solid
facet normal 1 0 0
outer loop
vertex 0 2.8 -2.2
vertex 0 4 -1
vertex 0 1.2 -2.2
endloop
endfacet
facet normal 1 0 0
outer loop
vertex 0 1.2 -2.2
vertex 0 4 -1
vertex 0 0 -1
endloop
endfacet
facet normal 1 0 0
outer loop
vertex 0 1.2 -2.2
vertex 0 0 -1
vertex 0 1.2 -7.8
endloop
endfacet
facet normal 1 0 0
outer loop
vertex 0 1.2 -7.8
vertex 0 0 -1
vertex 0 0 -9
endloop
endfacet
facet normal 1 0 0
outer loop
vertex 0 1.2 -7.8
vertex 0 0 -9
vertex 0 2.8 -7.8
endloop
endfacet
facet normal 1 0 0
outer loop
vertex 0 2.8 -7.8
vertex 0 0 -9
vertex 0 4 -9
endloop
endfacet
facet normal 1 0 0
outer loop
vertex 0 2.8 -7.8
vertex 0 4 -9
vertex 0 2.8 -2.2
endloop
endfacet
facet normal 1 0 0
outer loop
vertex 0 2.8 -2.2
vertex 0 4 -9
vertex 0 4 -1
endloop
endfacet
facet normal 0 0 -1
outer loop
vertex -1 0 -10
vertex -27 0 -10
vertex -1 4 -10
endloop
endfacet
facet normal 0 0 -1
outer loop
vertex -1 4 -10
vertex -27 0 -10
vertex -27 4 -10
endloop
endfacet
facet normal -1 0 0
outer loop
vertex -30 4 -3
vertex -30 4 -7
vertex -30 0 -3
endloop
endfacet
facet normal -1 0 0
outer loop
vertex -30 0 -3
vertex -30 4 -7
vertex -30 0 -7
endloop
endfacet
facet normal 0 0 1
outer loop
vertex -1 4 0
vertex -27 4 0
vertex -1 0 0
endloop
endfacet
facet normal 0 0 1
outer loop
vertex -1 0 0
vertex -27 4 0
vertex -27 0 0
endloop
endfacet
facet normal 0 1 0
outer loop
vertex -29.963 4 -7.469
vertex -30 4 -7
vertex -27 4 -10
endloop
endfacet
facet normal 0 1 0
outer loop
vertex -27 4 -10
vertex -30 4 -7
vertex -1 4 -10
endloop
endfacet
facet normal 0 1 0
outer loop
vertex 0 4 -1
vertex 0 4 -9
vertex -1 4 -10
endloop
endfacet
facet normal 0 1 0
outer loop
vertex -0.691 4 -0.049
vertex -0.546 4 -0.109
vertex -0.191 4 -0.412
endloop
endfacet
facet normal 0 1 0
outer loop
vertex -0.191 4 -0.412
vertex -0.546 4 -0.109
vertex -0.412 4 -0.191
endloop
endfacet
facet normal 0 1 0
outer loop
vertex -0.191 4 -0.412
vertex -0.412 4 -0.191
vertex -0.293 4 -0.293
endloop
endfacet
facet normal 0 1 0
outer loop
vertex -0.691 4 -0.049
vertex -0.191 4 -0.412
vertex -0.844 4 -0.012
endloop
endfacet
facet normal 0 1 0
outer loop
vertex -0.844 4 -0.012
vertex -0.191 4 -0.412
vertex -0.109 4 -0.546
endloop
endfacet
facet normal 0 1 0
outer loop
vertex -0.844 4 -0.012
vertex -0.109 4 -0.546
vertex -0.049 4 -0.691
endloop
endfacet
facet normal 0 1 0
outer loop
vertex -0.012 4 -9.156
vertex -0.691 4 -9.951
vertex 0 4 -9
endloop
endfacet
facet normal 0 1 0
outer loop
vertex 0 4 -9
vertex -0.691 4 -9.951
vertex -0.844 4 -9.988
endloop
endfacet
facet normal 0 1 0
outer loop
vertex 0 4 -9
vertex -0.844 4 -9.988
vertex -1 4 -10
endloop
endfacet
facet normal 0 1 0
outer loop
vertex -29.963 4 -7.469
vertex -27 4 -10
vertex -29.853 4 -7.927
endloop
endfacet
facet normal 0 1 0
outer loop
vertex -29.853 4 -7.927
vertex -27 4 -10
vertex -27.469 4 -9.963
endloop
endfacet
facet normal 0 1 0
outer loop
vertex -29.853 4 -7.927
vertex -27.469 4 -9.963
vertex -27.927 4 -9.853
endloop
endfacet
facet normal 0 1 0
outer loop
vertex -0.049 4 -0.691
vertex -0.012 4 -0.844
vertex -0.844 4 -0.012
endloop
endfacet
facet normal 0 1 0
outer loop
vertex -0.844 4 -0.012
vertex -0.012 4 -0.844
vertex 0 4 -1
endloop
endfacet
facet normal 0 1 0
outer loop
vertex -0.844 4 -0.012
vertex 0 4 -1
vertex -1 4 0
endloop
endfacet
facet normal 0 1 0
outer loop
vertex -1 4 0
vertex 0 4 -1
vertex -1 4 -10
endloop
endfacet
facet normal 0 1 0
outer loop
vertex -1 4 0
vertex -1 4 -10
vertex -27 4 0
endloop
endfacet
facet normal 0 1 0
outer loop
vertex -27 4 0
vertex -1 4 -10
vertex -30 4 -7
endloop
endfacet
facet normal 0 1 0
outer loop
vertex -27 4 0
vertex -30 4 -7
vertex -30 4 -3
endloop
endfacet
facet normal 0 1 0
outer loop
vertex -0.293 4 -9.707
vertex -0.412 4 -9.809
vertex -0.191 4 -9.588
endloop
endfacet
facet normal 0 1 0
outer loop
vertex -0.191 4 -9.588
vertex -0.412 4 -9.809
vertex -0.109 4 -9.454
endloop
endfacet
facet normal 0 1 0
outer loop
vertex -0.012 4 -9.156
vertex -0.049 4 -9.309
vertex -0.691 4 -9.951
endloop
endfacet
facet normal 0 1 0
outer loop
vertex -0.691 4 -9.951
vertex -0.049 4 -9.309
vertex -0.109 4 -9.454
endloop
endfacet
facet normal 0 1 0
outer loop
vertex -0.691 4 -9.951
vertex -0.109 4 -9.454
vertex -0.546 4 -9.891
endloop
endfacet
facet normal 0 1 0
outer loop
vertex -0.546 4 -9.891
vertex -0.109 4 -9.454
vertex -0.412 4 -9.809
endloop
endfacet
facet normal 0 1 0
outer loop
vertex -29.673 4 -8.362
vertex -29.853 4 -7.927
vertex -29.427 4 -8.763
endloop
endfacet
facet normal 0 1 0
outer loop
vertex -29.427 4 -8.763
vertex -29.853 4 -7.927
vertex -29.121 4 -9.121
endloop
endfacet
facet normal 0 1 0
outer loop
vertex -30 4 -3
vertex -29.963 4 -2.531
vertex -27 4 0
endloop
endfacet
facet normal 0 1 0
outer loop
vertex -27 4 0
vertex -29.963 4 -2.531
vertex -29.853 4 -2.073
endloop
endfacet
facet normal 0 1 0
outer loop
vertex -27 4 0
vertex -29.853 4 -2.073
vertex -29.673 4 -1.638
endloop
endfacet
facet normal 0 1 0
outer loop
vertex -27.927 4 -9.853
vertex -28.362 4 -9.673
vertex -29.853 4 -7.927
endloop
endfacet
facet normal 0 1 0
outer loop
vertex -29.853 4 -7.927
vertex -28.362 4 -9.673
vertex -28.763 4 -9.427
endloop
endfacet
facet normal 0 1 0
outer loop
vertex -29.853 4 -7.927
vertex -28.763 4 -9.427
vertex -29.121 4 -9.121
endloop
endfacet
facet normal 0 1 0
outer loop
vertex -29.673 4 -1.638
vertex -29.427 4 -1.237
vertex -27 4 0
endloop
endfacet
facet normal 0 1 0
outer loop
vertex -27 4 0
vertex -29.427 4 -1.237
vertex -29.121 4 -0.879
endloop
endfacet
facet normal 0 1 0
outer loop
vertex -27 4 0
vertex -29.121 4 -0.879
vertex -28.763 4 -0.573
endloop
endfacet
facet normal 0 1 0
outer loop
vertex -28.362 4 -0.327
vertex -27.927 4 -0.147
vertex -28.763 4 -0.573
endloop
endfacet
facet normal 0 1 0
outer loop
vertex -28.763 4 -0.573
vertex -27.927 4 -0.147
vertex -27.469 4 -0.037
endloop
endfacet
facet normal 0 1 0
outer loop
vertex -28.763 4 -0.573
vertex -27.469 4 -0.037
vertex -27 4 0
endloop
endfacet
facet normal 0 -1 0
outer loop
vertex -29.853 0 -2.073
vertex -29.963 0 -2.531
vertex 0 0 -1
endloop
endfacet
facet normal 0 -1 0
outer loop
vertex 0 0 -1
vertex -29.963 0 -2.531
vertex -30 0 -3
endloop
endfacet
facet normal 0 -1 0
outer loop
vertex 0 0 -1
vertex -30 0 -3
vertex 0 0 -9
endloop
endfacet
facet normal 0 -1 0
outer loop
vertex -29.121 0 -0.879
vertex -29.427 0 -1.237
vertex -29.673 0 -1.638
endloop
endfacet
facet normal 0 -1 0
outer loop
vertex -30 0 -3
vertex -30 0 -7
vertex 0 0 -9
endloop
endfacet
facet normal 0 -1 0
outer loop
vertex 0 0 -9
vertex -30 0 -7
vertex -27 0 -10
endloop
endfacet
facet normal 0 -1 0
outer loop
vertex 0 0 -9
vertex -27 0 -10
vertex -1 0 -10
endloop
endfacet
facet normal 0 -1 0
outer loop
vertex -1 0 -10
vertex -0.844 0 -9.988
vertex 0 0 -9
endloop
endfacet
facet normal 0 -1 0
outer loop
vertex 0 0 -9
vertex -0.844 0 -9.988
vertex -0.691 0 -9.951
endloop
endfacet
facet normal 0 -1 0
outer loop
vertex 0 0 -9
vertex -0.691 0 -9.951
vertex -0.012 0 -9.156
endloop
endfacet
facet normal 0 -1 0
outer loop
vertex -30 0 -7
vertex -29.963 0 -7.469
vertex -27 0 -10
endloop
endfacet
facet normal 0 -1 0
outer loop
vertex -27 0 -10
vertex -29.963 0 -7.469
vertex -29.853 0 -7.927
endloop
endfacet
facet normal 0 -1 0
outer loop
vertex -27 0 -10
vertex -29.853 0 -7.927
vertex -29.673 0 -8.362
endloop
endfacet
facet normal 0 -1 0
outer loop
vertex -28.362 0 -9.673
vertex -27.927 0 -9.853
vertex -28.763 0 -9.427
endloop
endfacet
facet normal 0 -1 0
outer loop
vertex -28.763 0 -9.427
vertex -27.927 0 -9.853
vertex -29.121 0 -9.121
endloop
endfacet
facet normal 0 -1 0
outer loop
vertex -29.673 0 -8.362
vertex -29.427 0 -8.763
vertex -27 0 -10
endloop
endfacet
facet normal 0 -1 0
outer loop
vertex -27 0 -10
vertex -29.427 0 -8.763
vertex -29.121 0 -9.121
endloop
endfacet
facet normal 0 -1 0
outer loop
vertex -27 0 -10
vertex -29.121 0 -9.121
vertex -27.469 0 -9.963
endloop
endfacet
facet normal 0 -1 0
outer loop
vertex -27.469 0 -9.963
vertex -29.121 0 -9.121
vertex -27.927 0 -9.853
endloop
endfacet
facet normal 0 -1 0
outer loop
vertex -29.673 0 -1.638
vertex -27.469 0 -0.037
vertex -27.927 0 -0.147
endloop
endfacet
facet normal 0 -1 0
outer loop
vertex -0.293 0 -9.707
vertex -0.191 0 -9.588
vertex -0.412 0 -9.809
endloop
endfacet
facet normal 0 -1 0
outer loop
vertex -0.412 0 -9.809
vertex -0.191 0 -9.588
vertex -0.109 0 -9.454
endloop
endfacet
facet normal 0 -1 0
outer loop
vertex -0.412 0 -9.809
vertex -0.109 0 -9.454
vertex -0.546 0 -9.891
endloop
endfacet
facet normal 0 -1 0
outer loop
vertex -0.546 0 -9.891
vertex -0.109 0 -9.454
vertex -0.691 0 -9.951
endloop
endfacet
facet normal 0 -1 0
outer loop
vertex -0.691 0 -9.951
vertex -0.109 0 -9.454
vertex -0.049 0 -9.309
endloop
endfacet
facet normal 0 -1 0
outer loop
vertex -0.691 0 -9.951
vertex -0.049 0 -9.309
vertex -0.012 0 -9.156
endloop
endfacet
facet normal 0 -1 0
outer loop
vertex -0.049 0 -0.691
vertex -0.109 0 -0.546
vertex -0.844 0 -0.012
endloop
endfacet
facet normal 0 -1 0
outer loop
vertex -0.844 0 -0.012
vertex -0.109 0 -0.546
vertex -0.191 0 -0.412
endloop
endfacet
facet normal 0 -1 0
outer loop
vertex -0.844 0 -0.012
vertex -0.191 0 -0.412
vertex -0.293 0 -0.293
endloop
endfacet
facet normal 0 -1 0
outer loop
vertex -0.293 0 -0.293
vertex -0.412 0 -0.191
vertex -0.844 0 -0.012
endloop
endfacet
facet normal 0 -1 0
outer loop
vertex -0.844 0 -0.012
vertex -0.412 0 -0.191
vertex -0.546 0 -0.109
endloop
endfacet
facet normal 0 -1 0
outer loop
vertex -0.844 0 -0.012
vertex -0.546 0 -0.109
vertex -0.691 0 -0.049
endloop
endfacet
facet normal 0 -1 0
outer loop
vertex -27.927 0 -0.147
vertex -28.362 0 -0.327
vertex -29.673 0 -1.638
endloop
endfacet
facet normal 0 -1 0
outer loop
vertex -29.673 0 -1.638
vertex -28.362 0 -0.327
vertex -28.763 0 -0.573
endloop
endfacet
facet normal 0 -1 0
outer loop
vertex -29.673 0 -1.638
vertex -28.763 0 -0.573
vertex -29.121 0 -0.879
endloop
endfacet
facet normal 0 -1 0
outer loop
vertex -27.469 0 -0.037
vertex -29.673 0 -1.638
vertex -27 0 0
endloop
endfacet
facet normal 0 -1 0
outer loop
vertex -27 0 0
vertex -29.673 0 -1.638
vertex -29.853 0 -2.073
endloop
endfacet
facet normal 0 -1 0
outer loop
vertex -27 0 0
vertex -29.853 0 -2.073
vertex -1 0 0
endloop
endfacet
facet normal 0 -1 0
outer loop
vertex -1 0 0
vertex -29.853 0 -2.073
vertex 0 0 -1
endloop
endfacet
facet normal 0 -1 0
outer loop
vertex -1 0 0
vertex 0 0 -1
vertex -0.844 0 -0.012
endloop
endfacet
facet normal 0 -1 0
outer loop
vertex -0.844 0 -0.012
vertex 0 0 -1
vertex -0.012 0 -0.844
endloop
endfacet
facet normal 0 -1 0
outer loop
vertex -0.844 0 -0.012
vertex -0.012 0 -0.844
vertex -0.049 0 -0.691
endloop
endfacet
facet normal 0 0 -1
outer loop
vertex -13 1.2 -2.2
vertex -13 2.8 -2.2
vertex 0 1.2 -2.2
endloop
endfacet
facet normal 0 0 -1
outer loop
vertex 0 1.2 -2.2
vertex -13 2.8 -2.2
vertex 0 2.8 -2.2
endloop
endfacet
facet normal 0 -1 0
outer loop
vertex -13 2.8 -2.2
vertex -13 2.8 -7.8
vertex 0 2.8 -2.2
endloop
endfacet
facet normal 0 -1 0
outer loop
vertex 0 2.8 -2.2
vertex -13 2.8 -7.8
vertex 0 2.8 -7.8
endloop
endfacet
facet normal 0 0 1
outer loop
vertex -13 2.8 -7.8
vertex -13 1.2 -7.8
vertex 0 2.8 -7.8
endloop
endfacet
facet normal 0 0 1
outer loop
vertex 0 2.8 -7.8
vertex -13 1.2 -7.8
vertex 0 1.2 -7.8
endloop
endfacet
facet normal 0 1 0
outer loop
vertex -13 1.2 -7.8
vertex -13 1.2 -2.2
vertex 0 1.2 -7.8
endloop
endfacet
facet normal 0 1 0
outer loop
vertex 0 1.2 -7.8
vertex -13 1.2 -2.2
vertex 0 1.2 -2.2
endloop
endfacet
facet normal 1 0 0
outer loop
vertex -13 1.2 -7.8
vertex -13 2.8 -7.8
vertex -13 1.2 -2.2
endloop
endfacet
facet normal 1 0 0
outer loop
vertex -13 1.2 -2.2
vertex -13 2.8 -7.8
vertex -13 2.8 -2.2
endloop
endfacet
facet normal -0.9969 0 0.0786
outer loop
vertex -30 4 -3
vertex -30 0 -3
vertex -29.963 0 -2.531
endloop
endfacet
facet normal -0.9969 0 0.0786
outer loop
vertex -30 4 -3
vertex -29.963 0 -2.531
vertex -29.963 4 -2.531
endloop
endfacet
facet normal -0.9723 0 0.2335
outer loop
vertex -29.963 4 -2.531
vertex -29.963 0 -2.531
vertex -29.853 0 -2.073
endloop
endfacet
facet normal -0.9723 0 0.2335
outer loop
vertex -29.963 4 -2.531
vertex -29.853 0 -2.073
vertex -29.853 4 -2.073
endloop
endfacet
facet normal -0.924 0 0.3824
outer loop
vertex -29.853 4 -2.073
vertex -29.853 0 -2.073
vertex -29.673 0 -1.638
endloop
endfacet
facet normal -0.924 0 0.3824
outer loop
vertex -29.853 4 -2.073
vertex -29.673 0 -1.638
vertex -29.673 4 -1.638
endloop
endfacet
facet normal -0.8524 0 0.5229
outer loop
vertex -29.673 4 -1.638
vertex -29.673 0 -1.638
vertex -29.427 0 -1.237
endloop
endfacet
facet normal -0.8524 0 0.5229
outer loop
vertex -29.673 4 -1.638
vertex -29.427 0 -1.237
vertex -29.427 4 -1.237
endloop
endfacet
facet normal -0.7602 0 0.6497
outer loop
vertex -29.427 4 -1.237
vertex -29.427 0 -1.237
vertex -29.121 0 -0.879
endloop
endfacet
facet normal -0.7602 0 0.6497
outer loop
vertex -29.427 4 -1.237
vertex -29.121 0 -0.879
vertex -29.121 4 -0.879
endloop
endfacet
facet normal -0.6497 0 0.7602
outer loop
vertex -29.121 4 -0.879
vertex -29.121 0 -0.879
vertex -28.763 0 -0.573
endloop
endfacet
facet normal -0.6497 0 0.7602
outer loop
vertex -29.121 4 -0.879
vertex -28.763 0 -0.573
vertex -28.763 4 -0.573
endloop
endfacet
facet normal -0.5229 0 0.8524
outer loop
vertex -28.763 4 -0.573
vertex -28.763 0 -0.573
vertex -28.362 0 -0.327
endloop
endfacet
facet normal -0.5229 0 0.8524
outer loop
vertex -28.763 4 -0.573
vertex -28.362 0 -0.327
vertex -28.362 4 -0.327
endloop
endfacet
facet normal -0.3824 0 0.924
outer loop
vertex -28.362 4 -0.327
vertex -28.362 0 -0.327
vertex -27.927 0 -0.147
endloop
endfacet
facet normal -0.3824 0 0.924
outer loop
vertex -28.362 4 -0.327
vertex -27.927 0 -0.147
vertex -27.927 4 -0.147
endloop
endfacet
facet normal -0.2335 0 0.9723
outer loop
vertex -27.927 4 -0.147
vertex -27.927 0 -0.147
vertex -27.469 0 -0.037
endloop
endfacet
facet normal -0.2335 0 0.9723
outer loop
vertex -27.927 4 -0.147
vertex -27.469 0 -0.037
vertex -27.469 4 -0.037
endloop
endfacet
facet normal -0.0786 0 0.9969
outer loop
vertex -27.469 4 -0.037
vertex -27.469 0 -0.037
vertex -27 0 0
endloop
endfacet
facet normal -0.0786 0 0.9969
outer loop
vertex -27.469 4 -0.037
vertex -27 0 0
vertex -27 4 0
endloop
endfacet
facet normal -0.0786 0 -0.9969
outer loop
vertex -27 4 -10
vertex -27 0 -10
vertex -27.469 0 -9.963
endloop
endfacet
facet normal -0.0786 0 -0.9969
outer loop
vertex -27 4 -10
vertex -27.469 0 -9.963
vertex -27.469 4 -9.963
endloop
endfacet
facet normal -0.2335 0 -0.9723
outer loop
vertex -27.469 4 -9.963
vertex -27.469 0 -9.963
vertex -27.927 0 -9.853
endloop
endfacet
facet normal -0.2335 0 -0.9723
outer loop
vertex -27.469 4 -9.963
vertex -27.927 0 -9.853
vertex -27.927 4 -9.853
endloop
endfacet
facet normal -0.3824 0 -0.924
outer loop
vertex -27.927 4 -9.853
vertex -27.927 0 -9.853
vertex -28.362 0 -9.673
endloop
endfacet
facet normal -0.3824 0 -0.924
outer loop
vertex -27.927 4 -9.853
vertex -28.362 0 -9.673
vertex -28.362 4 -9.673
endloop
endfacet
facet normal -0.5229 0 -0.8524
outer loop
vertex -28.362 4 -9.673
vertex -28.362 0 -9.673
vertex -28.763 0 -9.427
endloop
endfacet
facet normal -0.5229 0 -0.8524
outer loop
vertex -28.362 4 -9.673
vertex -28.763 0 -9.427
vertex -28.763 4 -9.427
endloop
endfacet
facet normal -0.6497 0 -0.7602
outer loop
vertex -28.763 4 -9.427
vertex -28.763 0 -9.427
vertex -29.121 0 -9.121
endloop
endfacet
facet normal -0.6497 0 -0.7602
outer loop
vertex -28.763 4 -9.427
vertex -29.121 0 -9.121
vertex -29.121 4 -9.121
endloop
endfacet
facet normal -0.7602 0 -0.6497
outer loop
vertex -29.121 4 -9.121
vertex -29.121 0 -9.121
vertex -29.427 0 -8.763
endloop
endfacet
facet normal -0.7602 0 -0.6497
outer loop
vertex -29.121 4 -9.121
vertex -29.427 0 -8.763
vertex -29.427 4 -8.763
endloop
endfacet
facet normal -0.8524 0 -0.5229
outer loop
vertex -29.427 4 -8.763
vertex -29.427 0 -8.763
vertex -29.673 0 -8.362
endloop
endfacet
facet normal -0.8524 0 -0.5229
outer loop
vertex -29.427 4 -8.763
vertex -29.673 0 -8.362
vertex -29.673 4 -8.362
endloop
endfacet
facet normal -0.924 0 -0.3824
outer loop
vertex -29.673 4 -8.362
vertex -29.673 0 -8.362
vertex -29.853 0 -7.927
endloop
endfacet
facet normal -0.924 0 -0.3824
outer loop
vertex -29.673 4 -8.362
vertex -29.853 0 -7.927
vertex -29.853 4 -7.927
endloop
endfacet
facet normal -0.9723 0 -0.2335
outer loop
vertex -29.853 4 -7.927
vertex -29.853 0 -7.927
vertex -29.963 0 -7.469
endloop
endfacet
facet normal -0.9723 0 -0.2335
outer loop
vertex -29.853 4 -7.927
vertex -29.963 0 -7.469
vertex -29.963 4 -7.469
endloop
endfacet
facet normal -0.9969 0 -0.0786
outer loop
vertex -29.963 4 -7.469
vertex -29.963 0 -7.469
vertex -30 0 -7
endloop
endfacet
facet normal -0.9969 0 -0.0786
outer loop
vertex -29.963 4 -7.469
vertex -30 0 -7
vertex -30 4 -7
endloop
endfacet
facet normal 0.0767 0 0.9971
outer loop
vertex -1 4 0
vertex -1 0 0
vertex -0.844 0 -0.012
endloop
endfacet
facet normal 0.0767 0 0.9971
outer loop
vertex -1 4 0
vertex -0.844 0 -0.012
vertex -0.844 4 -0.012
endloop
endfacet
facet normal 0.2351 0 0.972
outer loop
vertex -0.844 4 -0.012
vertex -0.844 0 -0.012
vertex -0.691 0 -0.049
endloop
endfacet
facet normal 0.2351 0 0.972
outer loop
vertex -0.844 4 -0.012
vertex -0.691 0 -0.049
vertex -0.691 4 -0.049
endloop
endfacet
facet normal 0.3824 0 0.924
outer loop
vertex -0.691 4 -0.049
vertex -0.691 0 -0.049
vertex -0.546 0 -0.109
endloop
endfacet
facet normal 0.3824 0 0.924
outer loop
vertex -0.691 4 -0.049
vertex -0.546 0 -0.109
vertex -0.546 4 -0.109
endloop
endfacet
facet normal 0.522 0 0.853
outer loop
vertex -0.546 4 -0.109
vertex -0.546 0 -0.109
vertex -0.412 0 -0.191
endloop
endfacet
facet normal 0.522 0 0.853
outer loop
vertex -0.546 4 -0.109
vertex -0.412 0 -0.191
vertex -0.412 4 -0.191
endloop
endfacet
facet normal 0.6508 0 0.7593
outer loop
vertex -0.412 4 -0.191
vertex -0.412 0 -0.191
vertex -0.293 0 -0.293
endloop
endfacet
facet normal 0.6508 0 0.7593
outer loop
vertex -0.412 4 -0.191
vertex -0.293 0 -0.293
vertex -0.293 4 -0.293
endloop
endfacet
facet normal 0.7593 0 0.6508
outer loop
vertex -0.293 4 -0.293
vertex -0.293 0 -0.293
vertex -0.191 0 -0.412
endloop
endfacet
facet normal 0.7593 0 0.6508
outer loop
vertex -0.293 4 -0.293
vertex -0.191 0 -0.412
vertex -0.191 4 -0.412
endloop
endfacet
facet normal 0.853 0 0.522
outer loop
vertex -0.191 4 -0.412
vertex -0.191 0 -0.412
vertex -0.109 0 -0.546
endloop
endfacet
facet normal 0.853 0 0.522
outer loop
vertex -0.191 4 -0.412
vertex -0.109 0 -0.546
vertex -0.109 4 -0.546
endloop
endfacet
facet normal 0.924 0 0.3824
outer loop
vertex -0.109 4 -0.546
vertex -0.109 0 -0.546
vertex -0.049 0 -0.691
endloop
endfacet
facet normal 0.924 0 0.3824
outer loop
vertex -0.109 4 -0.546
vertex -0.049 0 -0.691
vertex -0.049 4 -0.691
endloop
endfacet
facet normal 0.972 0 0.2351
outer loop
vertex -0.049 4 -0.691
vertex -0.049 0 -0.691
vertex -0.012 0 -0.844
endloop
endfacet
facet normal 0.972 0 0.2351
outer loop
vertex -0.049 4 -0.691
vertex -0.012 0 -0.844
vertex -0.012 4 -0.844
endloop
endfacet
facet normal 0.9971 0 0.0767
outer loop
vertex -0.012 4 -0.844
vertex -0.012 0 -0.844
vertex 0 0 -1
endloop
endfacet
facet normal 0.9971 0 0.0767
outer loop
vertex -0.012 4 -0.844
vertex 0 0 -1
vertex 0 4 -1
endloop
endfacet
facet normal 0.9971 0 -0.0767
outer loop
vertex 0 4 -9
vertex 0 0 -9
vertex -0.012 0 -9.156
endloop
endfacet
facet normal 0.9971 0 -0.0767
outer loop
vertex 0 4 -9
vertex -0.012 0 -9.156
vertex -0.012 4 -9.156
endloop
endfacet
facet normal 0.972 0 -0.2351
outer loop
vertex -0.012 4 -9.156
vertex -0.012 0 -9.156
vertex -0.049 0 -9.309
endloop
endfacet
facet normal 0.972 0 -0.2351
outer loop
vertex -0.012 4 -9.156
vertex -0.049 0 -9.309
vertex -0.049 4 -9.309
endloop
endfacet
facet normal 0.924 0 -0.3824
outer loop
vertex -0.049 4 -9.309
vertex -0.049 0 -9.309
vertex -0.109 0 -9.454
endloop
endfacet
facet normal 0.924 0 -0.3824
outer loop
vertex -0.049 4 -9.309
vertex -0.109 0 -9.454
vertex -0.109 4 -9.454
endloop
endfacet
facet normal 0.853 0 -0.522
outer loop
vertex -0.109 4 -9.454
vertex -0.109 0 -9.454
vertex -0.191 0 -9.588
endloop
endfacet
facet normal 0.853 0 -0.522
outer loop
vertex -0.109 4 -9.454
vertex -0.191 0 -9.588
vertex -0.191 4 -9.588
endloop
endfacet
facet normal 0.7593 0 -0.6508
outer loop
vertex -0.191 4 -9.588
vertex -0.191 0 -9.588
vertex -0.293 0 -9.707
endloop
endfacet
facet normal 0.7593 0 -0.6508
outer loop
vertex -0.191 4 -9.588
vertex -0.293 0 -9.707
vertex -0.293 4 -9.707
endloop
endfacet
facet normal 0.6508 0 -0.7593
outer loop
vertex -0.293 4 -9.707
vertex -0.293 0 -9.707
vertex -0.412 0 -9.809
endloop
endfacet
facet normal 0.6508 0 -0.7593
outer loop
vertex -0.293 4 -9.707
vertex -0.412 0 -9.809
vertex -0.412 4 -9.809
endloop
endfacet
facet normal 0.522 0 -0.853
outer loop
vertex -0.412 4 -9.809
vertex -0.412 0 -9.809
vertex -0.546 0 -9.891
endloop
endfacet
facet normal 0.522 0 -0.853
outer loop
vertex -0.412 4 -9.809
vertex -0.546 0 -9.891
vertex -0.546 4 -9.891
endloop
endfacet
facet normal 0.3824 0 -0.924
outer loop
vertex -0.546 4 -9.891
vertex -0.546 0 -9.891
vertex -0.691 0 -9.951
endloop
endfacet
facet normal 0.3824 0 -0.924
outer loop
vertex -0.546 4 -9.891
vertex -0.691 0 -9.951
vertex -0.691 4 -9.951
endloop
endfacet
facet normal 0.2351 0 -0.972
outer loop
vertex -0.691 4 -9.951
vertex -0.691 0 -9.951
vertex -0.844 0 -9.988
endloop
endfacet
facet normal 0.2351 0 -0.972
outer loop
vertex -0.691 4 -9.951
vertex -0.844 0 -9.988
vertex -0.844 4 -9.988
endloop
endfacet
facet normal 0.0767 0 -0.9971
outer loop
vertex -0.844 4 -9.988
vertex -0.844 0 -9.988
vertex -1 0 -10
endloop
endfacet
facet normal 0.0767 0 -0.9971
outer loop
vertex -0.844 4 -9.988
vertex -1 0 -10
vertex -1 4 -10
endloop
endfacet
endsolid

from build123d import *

# Parameters (mm, degrees)
SKETCH1_W           = 30
SKETCH1_H           = 10
BOSS_EXTRUDE1_DEPTH = 4
SKETCH2_W           = 5.6
SKETCH2_H           = 1.6
CUT_EXTRUDE1_DEPTH  = 13
FILLET1_R           = 3
FILLET2_R           = 1


with BuildPart() as part:
    # Sketch1 → Boss-Extrude1 (new body)
    with BuildSketch(Plane(origin=(0, 0, 0), x_dir=(1, 0, 0), z_dir=(0, 1, 0))):
        with Locations((-15, 5)):
            Rectangle(SKETCH1_W, SKETCH1_H)
    extrude(amount=BOSS_EXTRUDE1_DEPTH)

    # Sketch2 → Cut-Extrude1 (cut)
    with BuildSketch(Plane(origin=(0, 0, 0), x_dir=(0, 0, -1), z_dir=(1, 0, 0))):
        with Locations((5, 2)):
            Rectangle(SKETCH2_W, SKETCH2_H)
    extrude(amount=-CUT_EXTRUDE1_DEPTH, mode=Mode.SUBTRACT)

    # Fillet1
    fillet1_edges = [part.edges().sort_by_distance(p)[0] for p in [
        (-30, 2, 0),
        (-30, 2, -10),
    ]]
    fillet(fillet1_edges, radius=FILLET1_R)

    # Fillet2
    fillet2_edges = [part.edges().sort_by_distance(p)[0] for p in [
        (0, 2, 0),
        (0, 2, -10),
    ]]
    fillet(fillet2_edges, radius=FILLET2_R)


solid = part.part
